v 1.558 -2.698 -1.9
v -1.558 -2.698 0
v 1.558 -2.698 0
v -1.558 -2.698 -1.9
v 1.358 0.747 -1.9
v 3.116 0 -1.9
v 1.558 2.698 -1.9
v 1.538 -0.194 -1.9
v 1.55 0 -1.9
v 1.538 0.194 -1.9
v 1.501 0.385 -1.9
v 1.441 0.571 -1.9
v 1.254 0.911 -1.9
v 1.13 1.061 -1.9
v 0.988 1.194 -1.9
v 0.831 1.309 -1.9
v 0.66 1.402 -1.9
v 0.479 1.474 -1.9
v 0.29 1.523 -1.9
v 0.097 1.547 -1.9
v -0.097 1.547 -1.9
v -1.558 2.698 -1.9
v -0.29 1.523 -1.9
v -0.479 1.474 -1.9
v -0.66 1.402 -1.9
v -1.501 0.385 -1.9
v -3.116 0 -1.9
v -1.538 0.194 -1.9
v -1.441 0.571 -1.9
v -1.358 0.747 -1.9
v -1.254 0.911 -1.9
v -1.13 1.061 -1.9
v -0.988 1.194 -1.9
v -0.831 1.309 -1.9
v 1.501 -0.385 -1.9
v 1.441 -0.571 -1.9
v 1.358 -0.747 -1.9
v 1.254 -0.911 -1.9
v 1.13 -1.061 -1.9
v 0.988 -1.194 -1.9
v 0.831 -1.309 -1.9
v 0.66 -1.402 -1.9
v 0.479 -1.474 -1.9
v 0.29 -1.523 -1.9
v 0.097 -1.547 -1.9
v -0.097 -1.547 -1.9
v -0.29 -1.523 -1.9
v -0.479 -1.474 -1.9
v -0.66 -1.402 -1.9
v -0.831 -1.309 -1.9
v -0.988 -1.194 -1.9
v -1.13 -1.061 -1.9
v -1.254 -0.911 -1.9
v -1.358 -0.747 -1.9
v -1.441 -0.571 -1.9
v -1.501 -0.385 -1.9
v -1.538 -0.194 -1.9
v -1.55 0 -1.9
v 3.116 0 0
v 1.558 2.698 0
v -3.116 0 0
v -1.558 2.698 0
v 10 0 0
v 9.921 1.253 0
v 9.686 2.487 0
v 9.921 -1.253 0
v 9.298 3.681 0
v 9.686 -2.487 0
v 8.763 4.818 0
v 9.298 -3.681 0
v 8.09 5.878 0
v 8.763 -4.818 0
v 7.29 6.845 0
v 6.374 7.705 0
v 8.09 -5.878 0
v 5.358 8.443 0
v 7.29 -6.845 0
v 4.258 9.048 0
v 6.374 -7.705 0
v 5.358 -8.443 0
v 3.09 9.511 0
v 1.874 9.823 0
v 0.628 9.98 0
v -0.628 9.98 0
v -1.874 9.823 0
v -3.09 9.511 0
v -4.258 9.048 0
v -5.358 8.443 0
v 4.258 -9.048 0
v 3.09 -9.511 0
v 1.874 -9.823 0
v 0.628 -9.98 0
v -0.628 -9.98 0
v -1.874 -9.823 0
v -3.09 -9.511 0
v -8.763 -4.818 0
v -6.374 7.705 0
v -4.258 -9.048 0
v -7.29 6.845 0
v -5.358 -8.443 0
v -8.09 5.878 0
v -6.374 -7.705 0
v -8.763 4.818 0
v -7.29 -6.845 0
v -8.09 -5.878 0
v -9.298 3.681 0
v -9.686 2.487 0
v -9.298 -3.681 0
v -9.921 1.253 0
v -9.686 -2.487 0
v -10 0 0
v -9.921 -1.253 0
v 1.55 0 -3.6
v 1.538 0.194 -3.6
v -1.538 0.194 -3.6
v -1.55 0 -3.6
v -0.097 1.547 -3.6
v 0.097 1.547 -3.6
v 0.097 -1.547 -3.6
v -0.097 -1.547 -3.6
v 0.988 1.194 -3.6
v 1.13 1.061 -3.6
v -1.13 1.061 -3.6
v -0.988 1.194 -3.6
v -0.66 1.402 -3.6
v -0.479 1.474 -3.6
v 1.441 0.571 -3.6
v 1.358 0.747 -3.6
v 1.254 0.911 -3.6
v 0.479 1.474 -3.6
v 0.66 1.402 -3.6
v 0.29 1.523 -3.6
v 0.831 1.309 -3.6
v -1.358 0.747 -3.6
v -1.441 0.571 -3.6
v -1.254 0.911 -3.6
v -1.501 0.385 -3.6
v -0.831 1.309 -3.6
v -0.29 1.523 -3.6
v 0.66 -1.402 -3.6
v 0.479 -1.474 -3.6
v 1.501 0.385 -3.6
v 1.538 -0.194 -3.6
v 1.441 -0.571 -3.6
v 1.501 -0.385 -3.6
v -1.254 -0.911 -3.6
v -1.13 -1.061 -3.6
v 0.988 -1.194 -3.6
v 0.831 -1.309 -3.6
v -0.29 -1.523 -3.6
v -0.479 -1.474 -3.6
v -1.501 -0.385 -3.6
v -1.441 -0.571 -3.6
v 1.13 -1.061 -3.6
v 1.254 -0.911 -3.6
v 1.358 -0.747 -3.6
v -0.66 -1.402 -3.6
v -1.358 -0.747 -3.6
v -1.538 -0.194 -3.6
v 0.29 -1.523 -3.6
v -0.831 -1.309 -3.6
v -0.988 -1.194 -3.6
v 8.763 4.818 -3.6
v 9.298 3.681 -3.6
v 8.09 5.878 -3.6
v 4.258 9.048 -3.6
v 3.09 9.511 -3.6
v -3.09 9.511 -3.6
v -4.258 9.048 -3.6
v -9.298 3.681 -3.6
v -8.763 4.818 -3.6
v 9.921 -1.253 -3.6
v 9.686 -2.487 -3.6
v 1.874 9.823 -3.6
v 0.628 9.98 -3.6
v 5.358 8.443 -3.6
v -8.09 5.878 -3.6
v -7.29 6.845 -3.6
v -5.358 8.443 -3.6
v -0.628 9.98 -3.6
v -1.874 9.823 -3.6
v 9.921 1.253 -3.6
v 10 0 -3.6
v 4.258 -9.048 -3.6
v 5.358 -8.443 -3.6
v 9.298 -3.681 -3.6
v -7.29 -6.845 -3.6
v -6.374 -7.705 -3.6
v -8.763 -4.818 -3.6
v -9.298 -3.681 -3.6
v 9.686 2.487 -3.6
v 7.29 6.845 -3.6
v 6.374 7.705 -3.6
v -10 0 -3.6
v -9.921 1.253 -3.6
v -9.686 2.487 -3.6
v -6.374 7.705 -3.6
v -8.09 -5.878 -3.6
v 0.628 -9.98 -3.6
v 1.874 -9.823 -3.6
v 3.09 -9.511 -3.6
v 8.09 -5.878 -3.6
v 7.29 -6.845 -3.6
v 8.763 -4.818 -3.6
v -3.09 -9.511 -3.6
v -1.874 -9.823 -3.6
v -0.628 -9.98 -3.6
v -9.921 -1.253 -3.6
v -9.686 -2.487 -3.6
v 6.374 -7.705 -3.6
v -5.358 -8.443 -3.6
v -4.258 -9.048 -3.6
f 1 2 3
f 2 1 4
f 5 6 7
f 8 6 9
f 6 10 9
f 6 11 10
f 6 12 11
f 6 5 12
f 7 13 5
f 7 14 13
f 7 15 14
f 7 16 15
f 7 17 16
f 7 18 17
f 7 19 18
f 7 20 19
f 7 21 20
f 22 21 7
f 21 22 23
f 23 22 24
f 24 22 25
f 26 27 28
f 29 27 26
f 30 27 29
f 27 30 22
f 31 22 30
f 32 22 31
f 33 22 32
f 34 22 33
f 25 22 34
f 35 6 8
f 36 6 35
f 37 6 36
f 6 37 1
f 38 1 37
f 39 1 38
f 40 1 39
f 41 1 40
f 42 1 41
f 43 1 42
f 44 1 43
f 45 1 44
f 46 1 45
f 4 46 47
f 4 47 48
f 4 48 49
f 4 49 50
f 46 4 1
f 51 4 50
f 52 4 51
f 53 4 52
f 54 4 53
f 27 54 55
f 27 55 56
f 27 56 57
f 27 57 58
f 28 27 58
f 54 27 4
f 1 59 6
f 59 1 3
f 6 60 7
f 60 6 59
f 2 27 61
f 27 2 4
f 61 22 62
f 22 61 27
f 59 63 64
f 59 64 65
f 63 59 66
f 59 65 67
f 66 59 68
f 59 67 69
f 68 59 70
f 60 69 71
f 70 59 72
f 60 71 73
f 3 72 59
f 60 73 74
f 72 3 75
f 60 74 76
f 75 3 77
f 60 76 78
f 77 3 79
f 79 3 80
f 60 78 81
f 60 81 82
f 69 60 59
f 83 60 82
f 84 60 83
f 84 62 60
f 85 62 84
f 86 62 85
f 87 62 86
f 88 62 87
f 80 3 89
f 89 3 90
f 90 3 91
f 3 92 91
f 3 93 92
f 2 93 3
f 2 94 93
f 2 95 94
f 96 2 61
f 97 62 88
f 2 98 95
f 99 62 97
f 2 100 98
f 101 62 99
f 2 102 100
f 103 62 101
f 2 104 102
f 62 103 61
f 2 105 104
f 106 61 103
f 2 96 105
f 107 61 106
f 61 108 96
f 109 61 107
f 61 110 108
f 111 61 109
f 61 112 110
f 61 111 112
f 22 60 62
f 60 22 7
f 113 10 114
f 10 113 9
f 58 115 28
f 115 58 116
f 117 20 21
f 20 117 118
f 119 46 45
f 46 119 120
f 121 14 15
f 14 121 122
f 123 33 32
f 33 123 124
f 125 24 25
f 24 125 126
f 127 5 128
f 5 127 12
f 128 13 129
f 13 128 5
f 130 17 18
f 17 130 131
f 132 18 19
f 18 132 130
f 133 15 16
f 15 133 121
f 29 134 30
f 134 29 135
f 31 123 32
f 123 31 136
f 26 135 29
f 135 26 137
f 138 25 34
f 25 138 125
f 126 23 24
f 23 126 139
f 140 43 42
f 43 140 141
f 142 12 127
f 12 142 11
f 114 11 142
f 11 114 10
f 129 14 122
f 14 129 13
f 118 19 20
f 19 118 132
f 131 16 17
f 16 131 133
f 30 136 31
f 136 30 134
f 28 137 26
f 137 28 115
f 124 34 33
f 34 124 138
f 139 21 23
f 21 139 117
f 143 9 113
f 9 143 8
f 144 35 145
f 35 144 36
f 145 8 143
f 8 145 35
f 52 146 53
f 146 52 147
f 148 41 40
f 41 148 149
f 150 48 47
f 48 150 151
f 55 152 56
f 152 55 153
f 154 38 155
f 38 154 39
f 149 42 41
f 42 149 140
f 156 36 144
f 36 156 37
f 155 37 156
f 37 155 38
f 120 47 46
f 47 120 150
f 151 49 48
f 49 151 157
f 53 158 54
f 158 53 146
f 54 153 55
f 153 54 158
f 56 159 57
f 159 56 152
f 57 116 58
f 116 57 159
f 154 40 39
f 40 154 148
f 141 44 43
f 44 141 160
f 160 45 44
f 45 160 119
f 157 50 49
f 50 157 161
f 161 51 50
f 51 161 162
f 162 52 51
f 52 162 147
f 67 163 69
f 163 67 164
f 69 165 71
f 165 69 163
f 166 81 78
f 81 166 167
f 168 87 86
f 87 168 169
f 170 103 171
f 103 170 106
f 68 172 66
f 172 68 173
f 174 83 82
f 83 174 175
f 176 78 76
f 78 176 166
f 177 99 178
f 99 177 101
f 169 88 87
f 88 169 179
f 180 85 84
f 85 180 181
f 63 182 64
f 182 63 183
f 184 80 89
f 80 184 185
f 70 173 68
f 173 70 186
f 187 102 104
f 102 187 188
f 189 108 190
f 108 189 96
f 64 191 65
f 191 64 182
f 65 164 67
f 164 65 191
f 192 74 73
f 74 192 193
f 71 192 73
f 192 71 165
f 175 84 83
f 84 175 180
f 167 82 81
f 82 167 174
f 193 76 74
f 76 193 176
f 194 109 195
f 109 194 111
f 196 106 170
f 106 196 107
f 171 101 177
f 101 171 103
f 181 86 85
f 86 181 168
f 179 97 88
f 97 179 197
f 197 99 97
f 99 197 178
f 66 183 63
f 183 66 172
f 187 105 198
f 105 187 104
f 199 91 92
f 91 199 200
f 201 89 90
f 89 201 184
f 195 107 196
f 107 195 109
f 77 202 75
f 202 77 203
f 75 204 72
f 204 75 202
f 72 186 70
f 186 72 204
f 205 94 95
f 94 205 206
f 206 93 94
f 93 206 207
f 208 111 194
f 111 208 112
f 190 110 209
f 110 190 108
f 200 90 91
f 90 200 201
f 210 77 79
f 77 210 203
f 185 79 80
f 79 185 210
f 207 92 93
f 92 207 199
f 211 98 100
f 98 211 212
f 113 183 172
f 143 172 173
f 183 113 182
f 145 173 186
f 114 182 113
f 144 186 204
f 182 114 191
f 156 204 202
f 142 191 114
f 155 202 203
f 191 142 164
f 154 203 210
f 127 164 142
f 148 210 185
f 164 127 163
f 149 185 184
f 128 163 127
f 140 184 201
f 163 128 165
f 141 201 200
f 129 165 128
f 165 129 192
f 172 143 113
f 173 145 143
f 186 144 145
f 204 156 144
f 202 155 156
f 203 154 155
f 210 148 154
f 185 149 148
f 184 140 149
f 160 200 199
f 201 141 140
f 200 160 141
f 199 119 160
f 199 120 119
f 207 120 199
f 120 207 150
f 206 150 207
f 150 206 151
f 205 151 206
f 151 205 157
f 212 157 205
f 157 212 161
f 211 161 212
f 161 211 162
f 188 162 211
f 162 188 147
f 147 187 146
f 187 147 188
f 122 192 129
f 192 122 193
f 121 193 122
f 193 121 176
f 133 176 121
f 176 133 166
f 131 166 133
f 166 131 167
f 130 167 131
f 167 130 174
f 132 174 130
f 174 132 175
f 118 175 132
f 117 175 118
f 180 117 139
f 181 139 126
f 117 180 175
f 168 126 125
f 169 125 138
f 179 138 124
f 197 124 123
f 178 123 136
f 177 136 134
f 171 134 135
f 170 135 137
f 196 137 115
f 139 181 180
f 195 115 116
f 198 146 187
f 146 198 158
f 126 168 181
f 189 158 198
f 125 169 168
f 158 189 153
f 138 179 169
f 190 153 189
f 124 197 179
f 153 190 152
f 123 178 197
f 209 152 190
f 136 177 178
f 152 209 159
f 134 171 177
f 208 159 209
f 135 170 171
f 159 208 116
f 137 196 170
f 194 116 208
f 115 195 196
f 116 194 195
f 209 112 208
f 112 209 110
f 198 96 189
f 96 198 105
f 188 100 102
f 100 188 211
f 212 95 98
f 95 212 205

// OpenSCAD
$fn = 50;

difference() {
	union() {
		translate(v = [0, 0, -3.6]) {
			cylinder(h = 3.6, r = 10.0);
		}
	}
	union() {
		translate(v = [0, 0, 0]) {
			rotate(a = [0, 0, 0]) {
				difference() {
					union() {
						translate(v = [0, 0, -1.9]) {
							linear_extrude(height = 1.9) {
								polygon(points = [[3.1158, 0.0], [1.5579000000000005, 2.698361953111554], [-1.5578999999999994, 2.6983619531115544], [-3.1158, 3.815754496783323e-16], [-1.5579000000000014, -2.6983619531115535], [1.557899999999998, -2.6983619531115552]]);
							}
						}
					}
					union();
				}
			}
		}
		#translate(v = [0, 0, -100.0]) {
			cylinder(h = 200, r = 1.55);
		}
	}
}
